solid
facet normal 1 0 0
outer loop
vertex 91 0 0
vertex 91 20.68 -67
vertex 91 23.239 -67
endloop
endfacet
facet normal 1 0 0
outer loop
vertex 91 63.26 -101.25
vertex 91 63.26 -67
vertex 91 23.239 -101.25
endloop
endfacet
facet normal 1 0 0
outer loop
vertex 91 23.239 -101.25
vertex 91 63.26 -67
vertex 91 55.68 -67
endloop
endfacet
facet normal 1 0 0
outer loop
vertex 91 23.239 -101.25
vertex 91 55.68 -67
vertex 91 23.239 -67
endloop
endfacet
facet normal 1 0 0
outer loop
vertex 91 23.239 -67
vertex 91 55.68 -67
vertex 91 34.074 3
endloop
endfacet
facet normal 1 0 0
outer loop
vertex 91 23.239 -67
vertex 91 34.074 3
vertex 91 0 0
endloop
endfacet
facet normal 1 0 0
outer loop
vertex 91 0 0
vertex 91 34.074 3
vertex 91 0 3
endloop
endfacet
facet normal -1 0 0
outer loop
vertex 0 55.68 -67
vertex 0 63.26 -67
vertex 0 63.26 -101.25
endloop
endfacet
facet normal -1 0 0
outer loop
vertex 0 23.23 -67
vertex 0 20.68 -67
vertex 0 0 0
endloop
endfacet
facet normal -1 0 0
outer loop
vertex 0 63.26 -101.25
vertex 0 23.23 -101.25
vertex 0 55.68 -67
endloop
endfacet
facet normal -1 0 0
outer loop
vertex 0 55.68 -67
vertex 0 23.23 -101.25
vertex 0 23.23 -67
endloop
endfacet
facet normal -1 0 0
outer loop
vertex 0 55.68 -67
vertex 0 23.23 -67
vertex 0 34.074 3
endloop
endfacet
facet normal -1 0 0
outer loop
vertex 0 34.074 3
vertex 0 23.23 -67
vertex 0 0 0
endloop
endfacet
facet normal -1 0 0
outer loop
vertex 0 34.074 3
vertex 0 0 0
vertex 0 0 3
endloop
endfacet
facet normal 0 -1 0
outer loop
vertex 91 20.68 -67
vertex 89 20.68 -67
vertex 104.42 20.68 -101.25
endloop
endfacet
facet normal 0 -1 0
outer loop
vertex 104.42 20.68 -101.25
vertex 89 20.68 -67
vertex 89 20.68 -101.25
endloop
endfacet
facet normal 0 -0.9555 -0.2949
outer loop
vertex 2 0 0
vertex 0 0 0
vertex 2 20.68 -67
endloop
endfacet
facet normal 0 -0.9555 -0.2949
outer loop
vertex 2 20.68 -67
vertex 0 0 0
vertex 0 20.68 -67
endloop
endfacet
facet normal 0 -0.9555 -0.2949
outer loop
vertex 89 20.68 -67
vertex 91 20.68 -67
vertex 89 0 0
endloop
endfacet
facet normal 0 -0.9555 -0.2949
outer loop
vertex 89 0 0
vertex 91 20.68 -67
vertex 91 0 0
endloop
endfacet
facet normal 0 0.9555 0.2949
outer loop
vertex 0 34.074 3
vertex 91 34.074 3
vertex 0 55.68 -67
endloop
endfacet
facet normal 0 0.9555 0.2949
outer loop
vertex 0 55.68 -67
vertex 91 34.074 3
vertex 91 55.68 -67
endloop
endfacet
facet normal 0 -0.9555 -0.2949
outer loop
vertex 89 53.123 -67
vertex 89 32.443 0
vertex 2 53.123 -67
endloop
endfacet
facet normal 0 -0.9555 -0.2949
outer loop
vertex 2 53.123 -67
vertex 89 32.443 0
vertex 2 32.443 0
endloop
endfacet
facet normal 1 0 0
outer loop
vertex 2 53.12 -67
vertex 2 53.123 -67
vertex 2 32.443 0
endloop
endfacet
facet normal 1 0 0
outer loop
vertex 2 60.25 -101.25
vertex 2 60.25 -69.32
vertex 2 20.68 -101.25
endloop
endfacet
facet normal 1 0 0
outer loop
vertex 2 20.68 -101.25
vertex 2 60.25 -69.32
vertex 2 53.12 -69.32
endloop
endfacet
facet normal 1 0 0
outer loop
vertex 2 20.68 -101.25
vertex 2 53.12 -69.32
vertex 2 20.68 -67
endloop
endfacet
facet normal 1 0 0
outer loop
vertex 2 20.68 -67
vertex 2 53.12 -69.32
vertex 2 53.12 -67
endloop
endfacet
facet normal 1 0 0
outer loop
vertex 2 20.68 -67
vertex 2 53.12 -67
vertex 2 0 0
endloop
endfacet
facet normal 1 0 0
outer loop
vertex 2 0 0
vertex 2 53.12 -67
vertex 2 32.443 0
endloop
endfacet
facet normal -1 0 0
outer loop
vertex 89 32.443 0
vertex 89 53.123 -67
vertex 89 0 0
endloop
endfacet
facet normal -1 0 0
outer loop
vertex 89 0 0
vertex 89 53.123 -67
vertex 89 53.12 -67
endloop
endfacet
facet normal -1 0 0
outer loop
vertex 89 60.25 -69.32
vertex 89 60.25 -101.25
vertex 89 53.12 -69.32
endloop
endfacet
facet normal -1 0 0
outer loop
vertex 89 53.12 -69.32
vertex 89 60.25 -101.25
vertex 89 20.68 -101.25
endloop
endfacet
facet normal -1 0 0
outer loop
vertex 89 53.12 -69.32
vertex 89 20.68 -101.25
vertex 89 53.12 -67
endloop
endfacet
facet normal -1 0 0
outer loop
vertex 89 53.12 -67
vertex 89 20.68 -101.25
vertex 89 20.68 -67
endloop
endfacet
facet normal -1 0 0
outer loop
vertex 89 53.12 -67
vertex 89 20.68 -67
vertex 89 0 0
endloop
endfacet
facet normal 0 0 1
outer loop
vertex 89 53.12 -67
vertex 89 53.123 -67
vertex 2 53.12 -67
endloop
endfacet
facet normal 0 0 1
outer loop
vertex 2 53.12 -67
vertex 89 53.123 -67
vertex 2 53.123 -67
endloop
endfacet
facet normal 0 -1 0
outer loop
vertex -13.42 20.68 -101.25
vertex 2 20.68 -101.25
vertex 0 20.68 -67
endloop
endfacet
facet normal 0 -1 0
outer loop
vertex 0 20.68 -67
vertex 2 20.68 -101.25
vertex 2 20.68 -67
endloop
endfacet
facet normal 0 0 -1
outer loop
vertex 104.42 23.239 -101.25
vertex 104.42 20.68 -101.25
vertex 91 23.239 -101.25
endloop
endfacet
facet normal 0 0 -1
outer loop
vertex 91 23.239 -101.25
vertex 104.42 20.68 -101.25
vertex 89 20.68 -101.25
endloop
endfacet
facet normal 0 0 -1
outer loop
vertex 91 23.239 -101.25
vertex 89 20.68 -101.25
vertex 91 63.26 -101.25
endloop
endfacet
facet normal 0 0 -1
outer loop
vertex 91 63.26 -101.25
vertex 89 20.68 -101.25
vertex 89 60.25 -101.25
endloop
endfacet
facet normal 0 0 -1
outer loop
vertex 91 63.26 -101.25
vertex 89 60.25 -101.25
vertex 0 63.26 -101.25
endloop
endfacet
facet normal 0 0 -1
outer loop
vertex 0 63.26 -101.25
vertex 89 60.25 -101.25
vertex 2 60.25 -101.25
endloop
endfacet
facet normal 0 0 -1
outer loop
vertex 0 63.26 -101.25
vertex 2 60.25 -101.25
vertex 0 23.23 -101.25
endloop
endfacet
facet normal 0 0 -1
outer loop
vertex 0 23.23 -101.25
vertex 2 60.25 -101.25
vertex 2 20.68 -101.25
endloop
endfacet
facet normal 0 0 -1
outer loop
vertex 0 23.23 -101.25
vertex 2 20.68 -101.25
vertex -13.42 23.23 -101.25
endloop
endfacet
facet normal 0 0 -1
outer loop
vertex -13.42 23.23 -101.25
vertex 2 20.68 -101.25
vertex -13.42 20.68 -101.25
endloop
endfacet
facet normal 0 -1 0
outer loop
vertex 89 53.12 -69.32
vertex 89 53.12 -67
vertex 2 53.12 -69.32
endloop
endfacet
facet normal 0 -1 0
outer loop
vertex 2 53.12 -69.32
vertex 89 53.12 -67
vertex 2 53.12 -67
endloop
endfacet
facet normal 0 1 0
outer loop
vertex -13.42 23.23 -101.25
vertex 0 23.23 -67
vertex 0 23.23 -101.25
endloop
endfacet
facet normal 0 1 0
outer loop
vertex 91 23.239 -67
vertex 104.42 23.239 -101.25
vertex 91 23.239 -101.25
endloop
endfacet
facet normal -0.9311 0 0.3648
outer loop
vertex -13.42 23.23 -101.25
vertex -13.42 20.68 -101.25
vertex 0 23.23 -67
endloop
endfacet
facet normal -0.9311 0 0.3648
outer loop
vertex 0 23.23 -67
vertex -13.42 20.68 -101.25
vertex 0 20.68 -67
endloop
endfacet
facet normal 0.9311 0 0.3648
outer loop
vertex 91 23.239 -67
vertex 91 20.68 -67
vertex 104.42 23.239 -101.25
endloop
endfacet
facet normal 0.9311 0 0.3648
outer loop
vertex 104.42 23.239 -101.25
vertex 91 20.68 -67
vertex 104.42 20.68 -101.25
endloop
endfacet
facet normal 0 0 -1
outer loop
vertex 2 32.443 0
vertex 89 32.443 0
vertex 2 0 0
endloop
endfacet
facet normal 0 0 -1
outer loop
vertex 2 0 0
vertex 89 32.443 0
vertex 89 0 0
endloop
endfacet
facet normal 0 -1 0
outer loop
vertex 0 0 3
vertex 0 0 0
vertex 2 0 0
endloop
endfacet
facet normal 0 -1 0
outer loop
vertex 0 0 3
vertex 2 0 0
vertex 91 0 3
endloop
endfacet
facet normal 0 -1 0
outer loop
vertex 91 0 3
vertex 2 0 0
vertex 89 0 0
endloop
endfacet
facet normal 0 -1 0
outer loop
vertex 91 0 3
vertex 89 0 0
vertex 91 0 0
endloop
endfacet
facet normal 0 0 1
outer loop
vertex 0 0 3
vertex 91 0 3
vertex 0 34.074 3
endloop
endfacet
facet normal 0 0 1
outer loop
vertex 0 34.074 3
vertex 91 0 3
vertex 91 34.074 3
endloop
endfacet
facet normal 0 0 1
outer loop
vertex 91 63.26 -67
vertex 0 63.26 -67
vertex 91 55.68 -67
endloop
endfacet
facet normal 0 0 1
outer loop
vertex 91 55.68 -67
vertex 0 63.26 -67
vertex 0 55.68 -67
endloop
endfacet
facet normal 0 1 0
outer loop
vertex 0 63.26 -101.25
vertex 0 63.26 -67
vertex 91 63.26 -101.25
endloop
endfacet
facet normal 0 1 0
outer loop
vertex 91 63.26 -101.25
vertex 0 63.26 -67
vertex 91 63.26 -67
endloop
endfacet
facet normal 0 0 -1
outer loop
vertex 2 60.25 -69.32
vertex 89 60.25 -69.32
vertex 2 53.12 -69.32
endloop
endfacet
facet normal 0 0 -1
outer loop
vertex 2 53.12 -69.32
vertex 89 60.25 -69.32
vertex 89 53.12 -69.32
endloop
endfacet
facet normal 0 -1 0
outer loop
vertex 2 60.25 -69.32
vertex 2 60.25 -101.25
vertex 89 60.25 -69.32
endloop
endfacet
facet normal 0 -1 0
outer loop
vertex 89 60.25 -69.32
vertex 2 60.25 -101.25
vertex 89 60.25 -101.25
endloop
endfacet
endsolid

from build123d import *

# Parameters (mm, degrees)
SKETCH2_W            = 91
SKETCH2_H            = 67
BOSS_EXTRUDE10_DEPTH = 55.68
CUT_EXTRUDE13_DEPTH  = 99
CUT_EXTRUDE14_DEPTH  = 99
SKETCH28_W           = 87
SKETCH28_H           = 97.65285099
CUT_EXTRUDE16_DEPTH  = 31
SKETCH29_W           = 91
SKETCH29_H           = 35
BOSS_EXTRUDE12_DEPTH = 34.25
SKETCH30_W           = 87
SKETCH30_H           = 34.25
CUT_EXTRUDE18_DEPTH  = 32.44
SKETCH31_W           = 34.25
SKETCH31_H           = 2.550055223
BOSS_EXTRUDE13_DEPTH = 13.42
SKETCH32_W           = 34.25
SKETCH32_H           = 2.55894211
BOSS_EXTRUDE14_DEPTH = 13.42
CUT_EXTRUDE19_DEPTH  = 13.42
CUT_EXTRUDE20_DEPTH  = 13.42
SKETCH35_W           = 91
SKETCH35_H           = 35
BOSS_EXTRUDE15_DEPTH = 3
CUT_EXTRUDE21_DEPTH  = 99
SKETCH38_W           = 91
SKETCH38_H           = 34.25
BOSS_EXTRUDE16_DEPTH = 7.58
SKETCH40_W           = 87
SKETCH40_H           = 31.930310383
CUT_EXTRUDE23_DEPTH  = 7.13


with BuildPart() as part:
    # Sketch2 → Boss-Extrude10 (new body)
    with BuildSketch(Plane(origin=(0, 0, 0), x_dir=(1, 0, 0), z_dir=(0, 1, 0))):
        with Locations((45.5, 33.5)):
            Rectangle(SKETCH2_W, SKETCH2_H)
    extrude(amount=BOSS_EXTRUDE10_DEPTH)

    # Sketch24 → Cut-Extrude13 (cut)
    with BuildSketch(Plane.ZY):
        Polygon((-67, 0), (-67, 20.68), (0, 0), align=None)
    extrude(amount=-CUT_EXTRUDE13_DEPTH, mode=Mode.SUBTRACT)

    # Sketch26 → Cut-Extrude14 (cut)
    with BuildSketch(Plane.ZY):
        Polygon((0, 55.68), (0, 35), (-67, 55.68), align=None)
    extrude(amount=-CUT_EXTRUDE14_DEPTH, mode=Mode.SUBTRACT)

    # Sketch28 → Cut-Extrude16 (cut)
    with BuildSketch(Plane(origin=(0, 0, 0), x_dir=(-1, 0, 0), z_dir=(0, -0.955519618566905, -0.2949275479397551))):
        with Locations((-45.5, 48.826425495)):
            Rectangle(SKETCH28_W, SKETCH28_H)
    extrude(amount=-CUT_EXTRUDE16_DEPTH, mode=Mode.SUBTRACT)

    # Sketch29 → Boss-Extrude12 (add)
    with BuildSketch(Plane(origin=(0, 0, -67), x_dir=(-1, 0, 0), z_dir=(0, 0, -1))):
        with Locations((-45.5, 38.18)):
            Rectangle(SKETCH29_W, SKETCH29_H)
    extrude(amount=BOSS_EXTRUDE12_DEPTH)

    # Sketch30 → Cut-Extrude18 (cut)
    with BuildSketch(Plane.XZ.offset(-20.68)):
        with Locations((45.5, -84.125)):
            Rectangle(SKETCH30_W, SKETCH30_H)
    extrude(amount=-CUT_EXTRUDE18_DEPTH, mode=Mode.SUBTRACT)

    # Sketch31 → Boss-Extrude13 (add)
    with BuildSketch(Plane.ZY):
        with Locations((-84.125, 21.955027612)):
            Rectangle(SKETCH31_W, SKETCH31_H)
    extrude(amount=BOSS_EXTRUDE13_DEPTH)

    # Sketch32 → Boss-Extrude14 (add)
    with BuildSketch(Plane(origin=(91, 0, 0), x_dir=(0, 0, -1), z_dir=(1, 0, 0))):
        with Locations((84.125, 21.959471055)):
            Rectangle(SKETCH32_W, SKETCH32_H)
    extrude(amount=BOSS_EXTRUDE14_DEPTH)

    # Sketch33 → Cut-Extrude19 (cut)
    with BuildSketch(Plane(origin=(0, 23.230055223, 0), x_dir=(1, 0, 0), z_dir=(0, 1, 0))):
        Polygon((-13.42, 101.25), (0, 67), (-13.42, 67), align=None)
    extrude(amount=-CUT_EXTRUDE19_DEPTH, mode=Mode.SUBTRACT)

    # Sketch34 → Cut-Extrude20 (cut)
    with BuildSketch(Plane(origin=(0, 23.23894211, 0), x_dir=(1, 0, 0), z_dir=(0, 1, 0))):
        Polygon((91, 67), (104.42, 101.25), (104.42, 67), align=None)
    extrude(amount=-CUT_EXTRUDE20_DEPTH, mode=Mode.SUBTRACT)

    # Sketch35 → Boss-Extrude15 (add)
    with BuildSketch(Plane.XY):
        with Locations((45.5, 17.5)):
            Rectangle(SKETCH35_W, SKETCH35_H)
    extrude(amount=BOSS_EXTRUDE15_DEPTH)

    # Sketch36 → Cut-Extrude21 (cut)
    with BuildSketch(Plane.ZY):
        Polygon((0, 35), (3, 34.074029851), (3, 35), align=None)
    extrude(amount=-CUT_EXTRUDE21_DEPTH, mode=Mode.SUBTRACT)

    # Sketch38 → Boss-Extrude16 (add)
    with BuildSketch(Plane(origin=(0, 55.68, 0), x_dir=(1, 0, 0), z_dir=(0, 1, 0))):
        with Locations((45.5, 84.125)):
            Rectangle(SKETCH38_W, SKETCH38_H)
    extrude(amount=BOSS_EXTRUDE16_DEPTH)

    # Sketch40 → Cut-Extrude23 (cut)
    with BuildSketch(Plane.XZ.offset(-53.12)):
        with Locations((45.5, -85.284844808)):
            Rectangle(SKETCH40_W, SKETCH40_H)
    extrude(amount=-CUT_EXTRUDE23_DEPTH, mode=Mode.SUBTRACT)


solid = part.part
